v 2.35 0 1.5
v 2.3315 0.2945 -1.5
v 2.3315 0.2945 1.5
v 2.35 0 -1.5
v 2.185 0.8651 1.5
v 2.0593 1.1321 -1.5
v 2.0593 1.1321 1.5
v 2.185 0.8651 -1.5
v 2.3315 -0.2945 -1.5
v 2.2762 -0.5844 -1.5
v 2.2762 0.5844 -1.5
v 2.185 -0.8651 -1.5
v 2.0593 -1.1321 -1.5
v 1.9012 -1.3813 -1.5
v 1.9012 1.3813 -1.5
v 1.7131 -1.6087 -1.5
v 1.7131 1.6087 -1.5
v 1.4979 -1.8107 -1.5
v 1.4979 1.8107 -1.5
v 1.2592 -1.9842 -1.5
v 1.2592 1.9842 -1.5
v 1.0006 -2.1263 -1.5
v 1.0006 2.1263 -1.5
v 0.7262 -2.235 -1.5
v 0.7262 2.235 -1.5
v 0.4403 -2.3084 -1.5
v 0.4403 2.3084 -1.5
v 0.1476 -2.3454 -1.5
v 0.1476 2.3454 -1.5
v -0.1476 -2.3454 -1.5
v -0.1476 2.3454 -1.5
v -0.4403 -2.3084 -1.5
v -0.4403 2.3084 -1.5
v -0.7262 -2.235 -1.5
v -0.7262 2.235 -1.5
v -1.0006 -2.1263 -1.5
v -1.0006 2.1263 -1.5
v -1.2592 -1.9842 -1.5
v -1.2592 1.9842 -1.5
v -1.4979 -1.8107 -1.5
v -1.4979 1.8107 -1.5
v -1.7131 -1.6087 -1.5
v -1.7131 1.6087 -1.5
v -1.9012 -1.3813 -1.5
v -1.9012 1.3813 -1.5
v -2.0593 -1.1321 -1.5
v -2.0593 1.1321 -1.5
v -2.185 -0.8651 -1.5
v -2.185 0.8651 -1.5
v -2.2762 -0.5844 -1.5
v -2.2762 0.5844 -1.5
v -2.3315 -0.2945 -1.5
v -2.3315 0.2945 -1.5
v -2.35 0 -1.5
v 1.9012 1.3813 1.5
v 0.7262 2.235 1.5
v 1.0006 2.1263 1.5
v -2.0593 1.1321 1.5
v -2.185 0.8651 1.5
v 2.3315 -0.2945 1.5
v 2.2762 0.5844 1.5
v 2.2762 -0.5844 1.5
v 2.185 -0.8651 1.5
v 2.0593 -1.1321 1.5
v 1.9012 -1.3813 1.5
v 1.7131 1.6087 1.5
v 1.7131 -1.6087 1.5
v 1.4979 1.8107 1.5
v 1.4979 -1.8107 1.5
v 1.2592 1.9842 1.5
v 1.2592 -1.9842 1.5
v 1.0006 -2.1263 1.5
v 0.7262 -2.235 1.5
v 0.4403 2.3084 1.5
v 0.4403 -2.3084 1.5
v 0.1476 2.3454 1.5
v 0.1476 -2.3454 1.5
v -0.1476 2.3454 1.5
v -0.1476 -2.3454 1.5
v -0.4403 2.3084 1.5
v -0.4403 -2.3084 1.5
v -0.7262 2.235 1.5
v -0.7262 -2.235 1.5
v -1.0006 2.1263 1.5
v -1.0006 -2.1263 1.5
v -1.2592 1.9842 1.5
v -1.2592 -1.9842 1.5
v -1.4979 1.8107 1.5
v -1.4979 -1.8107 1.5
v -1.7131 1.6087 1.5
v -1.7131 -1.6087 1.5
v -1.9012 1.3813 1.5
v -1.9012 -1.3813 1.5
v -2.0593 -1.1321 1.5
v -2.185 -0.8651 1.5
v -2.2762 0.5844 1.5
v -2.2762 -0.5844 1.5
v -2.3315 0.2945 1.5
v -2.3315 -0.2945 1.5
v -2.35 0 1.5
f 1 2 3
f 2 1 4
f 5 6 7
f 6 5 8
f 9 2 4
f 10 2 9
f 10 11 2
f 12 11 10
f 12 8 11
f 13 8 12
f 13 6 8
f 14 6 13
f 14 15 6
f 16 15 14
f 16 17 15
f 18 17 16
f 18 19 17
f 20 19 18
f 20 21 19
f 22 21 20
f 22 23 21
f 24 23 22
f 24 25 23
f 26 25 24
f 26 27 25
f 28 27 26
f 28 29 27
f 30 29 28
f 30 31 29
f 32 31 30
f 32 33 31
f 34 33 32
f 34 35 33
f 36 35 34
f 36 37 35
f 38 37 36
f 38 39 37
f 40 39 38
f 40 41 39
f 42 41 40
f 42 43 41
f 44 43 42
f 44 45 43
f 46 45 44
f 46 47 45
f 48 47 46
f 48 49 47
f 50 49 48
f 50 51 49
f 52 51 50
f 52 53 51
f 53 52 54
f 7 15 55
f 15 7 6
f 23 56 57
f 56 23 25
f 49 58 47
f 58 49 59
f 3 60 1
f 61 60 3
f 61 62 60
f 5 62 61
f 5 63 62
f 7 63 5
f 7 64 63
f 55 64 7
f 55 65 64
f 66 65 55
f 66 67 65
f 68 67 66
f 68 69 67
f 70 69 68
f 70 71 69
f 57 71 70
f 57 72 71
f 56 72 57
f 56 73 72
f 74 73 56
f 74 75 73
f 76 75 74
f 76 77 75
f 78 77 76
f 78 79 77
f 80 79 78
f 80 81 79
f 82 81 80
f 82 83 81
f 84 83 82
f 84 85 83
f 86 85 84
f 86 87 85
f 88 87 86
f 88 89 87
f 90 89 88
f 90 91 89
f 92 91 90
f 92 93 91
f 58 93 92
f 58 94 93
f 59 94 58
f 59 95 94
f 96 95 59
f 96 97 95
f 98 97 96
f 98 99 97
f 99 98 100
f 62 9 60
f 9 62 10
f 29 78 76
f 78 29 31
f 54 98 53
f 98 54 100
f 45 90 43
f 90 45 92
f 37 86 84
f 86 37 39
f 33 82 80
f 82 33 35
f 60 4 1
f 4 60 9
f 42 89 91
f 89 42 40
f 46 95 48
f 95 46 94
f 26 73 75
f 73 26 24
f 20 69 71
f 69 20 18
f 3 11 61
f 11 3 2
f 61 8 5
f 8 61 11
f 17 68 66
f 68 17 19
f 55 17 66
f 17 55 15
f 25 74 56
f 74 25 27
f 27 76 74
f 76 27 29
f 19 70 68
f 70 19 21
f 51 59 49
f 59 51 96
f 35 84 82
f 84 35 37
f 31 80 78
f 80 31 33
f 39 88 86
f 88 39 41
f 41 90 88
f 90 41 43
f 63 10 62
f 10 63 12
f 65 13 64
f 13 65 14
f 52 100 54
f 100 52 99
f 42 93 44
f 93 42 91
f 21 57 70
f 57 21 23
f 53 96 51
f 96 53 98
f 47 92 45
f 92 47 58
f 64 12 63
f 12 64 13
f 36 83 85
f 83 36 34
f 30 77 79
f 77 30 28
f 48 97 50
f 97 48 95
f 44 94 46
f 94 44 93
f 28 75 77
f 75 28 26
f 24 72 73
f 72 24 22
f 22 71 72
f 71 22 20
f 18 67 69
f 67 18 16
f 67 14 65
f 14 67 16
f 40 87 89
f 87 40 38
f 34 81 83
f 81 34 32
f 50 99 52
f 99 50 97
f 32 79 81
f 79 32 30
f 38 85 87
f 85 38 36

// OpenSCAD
$fn = 50;


difference() {
	union() {
		translate(v = [0, 0, -1.5000000000]) {
			cylinder(h = 3, r = 2.3500000000);
		}
	}
	union() {
		translate(v = [0, 0, -100.0000000000]) {
			cylinder(h = 200, r = 0);
		}
	}
}
